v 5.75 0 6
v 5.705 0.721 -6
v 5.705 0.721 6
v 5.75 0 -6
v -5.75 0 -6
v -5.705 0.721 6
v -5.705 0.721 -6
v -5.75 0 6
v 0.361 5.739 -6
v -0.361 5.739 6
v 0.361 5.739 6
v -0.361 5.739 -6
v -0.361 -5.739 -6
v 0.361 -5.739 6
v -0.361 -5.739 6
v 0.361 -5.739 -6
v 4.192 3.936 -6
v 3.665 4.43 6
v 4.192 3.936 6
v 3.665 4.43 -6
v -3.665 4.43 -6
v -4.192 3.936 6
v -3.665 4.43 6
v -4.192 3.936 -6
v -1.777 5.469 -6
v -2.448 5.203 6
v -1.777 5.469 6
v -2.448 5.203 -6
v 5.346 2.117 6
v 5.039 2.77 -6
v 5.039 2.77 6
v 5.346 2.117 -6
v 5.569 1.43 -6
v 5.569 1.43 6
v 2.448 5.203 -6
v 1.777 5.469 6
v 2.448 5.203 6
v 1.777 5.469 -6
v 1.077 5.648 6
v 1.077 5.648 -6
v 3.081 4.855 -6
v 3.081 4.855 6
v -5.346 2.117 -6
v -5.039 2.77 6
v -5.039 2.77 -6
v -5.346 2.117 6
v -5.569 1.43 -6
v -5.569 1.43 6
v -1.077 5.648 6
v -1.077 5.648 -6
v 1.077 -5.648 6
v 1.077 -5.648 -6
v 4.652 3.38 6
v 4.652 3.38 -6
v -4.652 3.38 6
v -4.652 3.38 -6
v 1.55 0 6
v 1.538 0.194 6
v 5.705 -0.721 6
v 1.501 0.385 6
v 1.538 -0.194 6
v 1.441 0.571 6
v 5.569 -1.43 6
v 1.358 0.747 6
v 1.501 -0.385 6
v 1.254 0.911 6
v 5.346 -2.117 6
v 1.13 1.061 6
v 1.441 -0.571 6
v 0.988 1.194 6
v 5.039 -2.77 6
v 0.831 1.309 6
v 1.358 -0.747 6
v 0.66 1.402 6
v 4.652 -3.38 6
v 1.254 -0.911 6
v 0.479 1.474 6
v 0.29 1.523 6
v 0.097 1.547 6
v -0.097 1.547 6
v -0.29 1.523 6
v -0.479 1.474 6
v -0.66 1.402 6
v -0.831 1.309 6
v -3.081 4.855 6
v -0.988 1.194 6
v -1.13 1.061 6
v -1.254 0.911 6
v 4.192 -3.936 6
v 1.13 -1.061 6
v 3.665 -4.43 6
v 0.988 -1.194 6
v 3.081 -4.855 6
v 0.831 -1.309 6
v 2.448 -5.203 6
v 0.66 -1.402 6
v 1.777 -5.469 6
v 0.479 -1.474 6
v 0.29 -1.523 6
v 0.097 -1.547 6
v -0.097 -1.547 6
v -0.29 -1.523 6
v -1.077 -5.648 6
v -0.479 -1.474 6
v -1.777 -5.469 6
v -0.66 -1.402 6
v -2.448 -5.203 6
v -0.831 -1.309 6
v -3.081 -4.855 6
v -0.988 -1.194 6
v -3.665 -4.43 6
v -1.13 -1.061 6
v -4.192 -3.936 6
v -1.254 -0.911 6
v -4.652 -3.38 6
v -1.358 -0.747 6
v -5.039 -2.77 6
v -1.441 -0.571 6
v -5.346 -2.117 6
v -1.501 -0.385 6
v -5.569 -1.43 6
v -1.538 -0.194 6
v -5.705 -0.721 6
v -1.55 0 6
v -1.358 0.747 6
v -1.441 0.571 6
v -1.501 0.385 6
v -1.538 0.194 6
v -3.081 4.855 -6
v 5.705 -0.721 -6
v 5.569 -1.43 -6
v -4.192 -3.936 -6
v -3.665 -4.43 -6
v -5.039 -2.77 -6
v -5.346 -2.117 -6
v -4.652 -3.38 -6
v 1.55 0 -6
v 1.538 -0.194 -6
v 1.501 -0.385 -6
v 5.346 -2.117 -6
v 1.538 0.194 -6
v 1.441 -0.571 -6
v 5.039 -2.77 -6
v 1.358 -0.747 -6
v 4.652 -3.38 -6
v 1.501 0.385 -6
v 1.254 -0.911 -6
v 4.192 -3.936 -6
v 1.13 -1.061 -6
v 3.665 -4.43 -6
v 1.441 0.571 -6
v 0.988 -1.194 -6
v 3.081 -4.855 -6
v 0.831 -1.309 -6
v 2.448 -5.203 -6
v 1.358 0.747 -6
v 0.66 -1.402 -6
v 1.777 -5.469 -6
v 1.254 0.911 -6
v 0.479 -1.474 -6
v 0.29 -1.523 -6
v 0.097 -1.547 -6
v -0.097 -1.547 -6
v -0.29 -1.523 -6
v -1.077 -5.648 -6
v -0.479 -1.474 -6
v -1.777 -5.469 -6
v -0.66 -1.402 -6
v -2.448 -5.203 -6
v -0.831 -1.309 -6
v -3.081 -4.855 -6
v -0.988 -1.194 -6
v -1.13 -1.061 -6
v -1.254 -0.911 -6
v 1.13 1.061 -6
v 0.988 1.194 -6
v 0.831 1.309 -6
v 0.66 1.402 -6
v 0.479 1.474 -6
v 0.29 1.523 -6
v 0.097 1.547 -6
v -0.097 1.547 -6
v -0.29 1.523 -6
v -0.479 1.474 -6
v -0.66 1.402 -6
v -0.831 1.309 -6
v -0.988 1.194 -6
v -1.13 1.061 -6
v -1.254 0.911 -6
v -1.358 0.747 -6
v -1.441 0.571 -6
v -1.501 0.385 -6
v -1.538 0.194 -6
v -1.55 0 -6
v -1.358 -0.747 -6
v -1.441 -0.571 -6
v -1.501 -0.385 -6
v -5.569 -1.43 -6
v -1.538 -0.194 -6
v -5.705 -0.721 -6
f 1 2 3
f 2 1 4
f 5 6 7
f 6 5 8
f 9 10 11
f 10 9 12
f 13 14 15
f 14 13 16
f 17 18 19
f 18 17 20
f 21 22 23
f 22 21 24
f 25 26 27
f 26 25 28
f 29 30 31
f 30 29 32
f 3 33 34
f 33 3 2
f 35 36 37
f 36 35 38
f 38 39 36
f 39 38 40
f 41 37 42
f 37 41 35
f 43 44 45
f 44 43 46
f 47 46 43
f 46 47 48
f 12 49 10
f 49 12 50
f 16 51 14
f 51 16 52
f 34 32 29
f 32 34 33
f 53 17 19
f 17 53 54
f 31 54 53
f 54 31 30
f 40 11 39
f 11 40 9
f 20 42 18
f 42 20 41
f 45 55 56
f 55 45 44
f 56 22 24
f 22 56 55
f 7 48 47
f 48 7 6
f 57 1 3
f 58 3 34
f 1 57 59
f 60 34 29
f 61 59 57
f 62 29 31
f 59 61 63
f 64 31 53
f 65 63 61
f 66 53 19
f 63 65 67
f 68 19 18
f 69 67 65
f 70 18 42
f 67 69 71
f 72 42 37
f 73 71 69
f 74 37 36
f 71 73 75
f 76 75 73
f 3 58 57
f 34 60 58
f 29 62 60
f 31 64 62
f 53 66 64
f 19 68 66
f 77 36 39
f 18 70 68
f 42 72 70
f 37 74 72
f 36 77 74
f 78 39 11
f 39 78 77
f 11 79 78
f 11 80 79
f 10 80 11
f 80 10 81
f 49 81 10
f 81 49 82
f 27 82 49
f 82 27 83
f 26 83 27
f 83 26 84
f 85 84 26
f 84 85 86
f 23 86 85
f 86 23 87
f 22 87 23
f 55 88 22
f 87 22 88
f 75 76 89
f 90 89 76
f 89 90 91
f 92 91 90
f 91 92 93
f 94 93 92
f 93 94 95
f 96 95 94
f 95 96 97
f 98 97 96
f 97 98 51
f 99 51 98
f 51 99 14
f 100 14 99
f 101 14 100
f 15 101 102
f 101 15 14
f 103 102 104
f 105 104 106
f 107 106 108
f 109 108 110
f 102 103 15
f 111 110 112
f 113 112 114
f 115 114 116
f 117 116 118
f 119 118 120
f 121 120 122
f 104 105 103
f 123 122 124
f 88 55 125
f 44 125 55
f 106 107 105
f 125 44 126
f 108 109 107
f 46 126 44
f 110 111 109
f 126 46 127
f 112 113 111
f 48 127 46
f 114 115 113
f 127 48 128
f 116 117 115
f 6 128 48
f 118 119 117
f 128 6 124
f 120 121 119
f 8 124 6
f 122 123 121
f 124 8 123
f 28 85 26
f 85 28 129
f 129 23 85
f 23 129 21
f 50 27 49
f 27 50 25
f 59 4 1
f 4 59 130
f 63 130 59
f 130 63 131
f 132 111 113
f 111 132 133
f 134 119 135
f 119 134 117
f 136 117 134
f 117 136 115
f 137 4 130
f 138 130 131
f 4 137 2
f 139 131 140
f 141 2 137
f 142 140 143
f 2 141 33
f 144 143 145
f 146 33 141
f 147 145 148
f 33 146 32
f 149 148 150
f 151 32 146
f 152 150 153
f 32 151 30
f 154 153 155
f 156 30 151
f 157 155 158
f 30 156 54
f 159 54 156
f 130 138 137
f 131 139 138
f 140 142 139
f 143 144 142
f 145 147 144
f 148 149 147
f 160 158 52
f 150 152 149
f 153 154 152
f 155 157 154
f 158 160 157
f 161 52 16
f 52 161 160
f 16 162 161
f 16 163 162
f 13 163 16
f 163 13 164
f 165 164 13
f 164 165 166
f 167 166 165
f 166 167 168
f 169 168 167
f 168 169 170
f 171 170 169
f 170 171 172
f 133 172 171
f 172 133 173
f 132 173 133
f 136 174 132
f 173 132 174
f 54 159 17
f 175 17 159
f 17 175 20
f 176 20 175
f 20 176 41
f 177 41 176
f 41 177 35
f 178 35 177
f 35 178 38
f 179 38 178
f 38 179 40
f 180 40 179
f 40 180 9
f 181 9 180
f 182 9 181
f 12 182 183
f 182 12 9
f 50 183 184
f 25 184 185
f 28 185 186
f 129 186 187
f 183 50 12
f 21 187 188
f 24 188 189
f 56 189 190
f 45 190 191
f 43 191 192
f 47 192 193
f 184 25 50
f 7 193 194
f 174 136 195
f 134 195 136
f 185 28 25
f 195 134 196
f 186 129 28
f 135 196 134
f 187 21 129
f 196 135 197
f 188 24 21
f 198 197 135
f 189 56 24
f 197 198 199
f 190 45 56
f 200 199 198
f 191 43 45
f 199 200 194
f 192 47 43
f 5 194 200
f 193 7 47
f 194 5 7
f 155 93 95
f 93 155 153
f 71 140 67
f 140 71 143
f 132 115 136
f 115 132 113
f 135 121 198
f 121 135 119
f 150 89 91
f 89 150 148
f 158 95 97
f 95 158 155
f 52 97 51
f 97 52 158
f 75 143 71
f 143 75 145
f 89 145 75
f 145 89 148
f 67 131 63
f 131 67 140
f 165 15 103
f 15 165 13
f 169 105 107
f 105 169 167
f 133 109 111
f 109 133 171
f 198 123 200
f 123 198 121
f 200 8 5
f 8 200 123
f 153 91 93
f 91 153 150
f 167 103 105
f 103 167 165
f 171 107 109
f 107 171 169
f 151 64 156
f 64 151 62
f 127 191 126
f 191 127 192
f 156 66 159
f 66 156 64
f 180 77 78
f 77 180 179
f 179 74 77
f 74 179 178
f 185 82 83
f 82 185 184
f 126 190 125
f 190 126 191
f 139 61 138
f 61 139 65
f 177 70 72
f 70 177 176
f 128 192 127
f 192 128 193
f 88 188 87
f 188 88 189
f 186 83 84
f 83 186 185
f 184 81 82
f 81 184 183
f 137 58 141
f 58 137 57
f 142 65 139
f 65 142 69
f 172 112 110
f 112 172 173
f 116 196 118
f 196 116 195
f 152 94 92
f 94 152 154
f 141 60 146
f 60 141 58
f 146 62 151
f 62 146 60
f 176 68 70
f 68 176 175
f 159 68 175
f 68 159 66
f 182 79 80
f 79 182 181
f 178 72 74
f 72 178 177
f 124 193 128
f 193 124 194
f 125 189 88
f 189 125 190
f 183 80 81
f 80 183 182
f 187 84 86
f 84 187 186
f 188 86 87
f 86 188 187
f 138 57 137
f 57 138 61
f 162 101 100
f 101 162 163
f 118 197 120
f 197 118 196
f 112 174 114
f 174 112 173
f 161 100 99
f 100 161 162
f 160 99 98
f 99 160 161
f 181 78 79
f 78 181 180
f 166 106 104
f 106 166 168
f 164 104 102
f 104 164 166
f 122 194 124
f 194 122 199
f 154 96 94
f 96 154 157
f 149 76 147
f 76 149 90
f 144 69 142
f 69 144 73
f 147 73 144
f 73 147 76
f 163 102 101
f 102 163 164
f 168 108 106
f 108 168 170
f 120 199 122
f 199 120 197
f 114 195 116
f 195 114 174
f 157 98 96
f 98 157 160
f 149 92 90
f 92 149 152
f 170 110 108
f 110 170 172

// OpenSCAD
$fn = 50;


difference() {
	union() {
		translate(v = [0, 0, -6.0000000000]) {
			cylinder(h = 12, r = 5.7500000000);
		}
	}
	union() {
		translate(v = [0, 0, -100.0000000000]) {
			cylinder(h = 200, r = 1.5500000000);
		}
	}
}
